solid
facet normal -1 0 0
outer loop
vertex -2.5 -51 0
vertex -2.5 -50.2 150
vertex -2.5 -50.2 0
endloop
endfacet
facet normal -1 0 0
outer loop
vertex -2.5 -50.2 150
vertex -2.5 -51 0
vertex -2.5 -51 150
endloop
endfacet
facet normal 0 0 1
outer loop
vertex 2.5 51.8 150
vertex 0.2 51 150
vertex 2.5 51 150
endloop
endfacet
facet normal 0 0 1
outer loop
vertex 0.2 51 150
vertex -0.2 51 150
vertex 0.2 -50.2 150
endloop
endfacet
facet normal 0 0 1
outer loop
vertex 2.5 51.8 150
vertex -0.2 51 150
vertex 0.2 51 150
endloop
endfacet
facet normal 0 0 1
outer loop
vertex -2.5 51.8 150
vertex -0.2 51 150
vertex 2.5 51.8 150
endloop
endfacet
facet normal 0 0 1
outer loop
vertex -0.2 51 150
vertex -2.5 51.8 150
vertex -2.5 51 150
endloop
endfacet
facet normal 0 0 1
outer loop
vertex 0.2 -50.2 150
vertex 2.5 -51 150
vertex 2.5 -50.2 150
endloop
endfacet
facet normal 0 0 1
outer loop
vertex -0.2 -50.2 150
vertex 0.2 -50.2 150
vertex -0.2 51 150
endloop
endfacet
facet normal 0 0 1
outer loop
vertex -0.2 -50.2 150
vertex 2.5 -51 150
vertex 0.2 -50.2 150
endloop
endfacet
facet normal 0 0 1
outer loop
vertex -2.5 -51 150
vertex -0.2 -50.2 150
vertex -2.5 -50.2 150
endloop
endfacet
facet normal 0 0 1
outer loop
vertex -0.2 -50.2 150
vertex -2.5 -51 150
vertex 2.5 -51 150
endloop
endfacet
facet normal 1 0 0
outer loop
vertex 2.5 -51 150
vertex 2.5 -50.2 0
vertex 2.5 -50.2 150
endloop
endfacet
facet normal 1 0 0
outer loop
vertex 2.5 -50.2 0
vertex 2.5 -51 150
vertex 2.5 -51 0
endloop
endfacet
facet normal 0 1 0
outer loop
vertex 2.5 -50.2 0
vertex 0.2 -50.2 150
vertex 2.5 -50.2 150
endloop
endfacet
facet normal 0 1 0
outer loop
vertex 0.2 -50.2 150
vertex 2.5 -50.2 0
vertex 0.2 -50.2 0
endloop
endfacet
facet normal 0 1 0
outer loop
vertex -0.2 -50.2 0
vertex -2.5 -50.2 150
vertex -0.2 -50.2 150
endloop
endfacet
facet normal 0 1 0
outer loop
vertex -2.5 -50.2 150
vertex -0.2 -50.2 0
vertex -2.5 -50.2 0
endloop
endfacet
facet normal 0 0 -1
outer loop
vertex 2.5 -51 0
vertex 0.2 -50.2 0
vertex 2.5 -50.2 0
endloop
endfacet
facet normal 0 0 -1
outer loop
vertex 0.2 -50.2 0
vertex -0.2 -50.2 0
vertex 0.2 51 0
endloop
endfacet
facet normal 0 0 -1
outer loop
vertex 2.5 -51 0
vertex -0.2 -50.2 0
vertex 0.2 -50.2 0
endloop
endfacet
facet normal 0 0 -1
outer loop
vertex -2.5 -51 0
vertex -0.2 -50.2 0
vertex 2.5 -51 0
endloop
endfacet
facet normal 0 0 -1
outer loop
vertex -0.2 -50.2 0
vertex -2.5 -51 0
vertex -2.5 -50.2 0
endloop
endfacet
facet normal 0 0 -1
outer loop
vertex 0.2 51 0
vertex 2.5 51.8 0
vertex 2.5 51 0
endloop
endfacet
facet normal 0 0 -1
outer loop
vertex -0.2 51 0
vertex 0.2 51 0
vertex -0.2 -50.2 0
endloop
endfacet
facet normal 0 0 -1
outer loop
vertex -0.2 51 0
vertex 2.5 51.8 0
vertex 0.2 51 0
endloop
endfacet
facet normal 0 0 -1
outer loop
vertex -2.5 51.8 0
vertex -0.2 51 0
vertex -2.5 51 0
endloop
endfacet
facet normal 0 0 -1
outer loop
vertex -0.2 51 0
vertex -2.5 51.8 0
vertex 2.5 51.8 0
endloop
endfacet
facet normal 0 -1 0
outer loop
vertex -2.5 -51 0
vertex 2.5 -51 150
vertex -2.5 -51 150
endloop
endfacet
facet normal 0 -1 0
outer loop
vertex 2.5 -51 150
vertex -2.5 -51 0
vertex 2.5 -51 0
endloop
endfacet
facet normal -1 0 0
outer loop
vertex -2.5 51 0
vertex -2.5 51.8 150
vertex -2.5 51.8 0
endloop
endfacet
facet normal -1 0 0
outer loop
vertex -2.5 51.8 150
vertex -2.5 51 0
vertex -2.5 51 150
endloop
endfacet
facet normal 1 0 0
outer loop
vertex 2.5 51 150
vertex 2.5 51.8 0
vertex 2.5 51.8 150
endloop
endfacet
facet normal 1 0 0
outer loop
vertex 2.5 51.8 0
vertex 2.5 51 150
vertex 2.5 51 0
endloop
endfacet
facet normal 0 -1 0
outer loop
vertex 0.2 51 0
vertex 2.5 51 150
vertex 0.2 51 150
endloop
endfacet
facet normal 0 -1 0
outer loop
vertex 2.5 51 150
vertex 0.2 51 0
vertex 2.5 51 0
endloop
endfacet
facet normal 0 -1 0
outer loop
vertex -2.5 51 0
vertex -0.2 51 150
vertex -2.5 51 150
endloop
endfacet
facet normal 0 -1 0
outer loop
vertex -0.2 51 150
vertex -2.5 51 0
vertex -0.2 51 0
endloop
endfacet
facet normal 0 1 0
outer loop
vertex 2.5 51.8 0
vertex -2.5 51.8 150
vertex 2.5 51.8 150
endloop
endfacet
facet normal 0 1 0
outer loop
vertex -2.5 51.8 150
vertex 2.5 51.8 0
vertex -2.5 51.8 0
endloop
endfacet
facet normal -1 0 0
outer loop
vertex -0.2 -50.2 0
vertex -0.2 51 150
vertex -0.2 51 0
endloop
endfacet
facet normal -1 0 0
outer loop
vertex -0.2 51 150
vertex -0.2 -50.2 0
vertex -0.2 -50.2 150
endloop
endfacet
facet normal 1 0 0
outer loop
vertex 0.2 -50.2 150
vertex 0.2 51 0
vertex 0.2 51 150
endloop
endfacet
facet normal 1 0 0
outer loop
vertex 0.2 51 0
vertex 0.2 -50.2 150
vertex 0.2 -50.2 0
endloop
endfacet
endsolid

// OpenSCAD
// -*- mode: SCAD ; c-file-style: "ellemtel" ; coding: utf-8 -*-
//
//
//
// © 2017 Roland Sieker <ospalh@gmail.com>
// Licence: CC-BY-SA 4.0

// … to preview
part = "wall"; // [wall: The cooling wall, modifier: The modifier cuboid. See description]
top_height=150; // [0,0.1:200]
modifier_bottom_height = 10;  // [0,0.1:200]


/* [Hidden] */

ms = 0.01;

print_part();

module print_part()
{
   if ("wall" == part)
   {
      wall();
   }
   if ("modifier" == part)
   {
      modifier();
   }
}


module wall()
{
   translate([-2.5, -51, 0])
   {
      cube([5, 0.8, top_height]);
   }
   translate([-2.5, 51, 0])
   {
   cube([5, 0.8, top_height]);
   }
   translate([0,0,top_height/2])
   {
      cube([0.4, 102, top_height], center=true);
   }
}

module modifier()
{
   translate([0,0,(top_height-modifier_bottom_height)/2+modifier_bottom_height+ms])
   {
      cube([1.2, 100, top_height-modifier_bottom_height+2*ms], center=true);
   }

}
